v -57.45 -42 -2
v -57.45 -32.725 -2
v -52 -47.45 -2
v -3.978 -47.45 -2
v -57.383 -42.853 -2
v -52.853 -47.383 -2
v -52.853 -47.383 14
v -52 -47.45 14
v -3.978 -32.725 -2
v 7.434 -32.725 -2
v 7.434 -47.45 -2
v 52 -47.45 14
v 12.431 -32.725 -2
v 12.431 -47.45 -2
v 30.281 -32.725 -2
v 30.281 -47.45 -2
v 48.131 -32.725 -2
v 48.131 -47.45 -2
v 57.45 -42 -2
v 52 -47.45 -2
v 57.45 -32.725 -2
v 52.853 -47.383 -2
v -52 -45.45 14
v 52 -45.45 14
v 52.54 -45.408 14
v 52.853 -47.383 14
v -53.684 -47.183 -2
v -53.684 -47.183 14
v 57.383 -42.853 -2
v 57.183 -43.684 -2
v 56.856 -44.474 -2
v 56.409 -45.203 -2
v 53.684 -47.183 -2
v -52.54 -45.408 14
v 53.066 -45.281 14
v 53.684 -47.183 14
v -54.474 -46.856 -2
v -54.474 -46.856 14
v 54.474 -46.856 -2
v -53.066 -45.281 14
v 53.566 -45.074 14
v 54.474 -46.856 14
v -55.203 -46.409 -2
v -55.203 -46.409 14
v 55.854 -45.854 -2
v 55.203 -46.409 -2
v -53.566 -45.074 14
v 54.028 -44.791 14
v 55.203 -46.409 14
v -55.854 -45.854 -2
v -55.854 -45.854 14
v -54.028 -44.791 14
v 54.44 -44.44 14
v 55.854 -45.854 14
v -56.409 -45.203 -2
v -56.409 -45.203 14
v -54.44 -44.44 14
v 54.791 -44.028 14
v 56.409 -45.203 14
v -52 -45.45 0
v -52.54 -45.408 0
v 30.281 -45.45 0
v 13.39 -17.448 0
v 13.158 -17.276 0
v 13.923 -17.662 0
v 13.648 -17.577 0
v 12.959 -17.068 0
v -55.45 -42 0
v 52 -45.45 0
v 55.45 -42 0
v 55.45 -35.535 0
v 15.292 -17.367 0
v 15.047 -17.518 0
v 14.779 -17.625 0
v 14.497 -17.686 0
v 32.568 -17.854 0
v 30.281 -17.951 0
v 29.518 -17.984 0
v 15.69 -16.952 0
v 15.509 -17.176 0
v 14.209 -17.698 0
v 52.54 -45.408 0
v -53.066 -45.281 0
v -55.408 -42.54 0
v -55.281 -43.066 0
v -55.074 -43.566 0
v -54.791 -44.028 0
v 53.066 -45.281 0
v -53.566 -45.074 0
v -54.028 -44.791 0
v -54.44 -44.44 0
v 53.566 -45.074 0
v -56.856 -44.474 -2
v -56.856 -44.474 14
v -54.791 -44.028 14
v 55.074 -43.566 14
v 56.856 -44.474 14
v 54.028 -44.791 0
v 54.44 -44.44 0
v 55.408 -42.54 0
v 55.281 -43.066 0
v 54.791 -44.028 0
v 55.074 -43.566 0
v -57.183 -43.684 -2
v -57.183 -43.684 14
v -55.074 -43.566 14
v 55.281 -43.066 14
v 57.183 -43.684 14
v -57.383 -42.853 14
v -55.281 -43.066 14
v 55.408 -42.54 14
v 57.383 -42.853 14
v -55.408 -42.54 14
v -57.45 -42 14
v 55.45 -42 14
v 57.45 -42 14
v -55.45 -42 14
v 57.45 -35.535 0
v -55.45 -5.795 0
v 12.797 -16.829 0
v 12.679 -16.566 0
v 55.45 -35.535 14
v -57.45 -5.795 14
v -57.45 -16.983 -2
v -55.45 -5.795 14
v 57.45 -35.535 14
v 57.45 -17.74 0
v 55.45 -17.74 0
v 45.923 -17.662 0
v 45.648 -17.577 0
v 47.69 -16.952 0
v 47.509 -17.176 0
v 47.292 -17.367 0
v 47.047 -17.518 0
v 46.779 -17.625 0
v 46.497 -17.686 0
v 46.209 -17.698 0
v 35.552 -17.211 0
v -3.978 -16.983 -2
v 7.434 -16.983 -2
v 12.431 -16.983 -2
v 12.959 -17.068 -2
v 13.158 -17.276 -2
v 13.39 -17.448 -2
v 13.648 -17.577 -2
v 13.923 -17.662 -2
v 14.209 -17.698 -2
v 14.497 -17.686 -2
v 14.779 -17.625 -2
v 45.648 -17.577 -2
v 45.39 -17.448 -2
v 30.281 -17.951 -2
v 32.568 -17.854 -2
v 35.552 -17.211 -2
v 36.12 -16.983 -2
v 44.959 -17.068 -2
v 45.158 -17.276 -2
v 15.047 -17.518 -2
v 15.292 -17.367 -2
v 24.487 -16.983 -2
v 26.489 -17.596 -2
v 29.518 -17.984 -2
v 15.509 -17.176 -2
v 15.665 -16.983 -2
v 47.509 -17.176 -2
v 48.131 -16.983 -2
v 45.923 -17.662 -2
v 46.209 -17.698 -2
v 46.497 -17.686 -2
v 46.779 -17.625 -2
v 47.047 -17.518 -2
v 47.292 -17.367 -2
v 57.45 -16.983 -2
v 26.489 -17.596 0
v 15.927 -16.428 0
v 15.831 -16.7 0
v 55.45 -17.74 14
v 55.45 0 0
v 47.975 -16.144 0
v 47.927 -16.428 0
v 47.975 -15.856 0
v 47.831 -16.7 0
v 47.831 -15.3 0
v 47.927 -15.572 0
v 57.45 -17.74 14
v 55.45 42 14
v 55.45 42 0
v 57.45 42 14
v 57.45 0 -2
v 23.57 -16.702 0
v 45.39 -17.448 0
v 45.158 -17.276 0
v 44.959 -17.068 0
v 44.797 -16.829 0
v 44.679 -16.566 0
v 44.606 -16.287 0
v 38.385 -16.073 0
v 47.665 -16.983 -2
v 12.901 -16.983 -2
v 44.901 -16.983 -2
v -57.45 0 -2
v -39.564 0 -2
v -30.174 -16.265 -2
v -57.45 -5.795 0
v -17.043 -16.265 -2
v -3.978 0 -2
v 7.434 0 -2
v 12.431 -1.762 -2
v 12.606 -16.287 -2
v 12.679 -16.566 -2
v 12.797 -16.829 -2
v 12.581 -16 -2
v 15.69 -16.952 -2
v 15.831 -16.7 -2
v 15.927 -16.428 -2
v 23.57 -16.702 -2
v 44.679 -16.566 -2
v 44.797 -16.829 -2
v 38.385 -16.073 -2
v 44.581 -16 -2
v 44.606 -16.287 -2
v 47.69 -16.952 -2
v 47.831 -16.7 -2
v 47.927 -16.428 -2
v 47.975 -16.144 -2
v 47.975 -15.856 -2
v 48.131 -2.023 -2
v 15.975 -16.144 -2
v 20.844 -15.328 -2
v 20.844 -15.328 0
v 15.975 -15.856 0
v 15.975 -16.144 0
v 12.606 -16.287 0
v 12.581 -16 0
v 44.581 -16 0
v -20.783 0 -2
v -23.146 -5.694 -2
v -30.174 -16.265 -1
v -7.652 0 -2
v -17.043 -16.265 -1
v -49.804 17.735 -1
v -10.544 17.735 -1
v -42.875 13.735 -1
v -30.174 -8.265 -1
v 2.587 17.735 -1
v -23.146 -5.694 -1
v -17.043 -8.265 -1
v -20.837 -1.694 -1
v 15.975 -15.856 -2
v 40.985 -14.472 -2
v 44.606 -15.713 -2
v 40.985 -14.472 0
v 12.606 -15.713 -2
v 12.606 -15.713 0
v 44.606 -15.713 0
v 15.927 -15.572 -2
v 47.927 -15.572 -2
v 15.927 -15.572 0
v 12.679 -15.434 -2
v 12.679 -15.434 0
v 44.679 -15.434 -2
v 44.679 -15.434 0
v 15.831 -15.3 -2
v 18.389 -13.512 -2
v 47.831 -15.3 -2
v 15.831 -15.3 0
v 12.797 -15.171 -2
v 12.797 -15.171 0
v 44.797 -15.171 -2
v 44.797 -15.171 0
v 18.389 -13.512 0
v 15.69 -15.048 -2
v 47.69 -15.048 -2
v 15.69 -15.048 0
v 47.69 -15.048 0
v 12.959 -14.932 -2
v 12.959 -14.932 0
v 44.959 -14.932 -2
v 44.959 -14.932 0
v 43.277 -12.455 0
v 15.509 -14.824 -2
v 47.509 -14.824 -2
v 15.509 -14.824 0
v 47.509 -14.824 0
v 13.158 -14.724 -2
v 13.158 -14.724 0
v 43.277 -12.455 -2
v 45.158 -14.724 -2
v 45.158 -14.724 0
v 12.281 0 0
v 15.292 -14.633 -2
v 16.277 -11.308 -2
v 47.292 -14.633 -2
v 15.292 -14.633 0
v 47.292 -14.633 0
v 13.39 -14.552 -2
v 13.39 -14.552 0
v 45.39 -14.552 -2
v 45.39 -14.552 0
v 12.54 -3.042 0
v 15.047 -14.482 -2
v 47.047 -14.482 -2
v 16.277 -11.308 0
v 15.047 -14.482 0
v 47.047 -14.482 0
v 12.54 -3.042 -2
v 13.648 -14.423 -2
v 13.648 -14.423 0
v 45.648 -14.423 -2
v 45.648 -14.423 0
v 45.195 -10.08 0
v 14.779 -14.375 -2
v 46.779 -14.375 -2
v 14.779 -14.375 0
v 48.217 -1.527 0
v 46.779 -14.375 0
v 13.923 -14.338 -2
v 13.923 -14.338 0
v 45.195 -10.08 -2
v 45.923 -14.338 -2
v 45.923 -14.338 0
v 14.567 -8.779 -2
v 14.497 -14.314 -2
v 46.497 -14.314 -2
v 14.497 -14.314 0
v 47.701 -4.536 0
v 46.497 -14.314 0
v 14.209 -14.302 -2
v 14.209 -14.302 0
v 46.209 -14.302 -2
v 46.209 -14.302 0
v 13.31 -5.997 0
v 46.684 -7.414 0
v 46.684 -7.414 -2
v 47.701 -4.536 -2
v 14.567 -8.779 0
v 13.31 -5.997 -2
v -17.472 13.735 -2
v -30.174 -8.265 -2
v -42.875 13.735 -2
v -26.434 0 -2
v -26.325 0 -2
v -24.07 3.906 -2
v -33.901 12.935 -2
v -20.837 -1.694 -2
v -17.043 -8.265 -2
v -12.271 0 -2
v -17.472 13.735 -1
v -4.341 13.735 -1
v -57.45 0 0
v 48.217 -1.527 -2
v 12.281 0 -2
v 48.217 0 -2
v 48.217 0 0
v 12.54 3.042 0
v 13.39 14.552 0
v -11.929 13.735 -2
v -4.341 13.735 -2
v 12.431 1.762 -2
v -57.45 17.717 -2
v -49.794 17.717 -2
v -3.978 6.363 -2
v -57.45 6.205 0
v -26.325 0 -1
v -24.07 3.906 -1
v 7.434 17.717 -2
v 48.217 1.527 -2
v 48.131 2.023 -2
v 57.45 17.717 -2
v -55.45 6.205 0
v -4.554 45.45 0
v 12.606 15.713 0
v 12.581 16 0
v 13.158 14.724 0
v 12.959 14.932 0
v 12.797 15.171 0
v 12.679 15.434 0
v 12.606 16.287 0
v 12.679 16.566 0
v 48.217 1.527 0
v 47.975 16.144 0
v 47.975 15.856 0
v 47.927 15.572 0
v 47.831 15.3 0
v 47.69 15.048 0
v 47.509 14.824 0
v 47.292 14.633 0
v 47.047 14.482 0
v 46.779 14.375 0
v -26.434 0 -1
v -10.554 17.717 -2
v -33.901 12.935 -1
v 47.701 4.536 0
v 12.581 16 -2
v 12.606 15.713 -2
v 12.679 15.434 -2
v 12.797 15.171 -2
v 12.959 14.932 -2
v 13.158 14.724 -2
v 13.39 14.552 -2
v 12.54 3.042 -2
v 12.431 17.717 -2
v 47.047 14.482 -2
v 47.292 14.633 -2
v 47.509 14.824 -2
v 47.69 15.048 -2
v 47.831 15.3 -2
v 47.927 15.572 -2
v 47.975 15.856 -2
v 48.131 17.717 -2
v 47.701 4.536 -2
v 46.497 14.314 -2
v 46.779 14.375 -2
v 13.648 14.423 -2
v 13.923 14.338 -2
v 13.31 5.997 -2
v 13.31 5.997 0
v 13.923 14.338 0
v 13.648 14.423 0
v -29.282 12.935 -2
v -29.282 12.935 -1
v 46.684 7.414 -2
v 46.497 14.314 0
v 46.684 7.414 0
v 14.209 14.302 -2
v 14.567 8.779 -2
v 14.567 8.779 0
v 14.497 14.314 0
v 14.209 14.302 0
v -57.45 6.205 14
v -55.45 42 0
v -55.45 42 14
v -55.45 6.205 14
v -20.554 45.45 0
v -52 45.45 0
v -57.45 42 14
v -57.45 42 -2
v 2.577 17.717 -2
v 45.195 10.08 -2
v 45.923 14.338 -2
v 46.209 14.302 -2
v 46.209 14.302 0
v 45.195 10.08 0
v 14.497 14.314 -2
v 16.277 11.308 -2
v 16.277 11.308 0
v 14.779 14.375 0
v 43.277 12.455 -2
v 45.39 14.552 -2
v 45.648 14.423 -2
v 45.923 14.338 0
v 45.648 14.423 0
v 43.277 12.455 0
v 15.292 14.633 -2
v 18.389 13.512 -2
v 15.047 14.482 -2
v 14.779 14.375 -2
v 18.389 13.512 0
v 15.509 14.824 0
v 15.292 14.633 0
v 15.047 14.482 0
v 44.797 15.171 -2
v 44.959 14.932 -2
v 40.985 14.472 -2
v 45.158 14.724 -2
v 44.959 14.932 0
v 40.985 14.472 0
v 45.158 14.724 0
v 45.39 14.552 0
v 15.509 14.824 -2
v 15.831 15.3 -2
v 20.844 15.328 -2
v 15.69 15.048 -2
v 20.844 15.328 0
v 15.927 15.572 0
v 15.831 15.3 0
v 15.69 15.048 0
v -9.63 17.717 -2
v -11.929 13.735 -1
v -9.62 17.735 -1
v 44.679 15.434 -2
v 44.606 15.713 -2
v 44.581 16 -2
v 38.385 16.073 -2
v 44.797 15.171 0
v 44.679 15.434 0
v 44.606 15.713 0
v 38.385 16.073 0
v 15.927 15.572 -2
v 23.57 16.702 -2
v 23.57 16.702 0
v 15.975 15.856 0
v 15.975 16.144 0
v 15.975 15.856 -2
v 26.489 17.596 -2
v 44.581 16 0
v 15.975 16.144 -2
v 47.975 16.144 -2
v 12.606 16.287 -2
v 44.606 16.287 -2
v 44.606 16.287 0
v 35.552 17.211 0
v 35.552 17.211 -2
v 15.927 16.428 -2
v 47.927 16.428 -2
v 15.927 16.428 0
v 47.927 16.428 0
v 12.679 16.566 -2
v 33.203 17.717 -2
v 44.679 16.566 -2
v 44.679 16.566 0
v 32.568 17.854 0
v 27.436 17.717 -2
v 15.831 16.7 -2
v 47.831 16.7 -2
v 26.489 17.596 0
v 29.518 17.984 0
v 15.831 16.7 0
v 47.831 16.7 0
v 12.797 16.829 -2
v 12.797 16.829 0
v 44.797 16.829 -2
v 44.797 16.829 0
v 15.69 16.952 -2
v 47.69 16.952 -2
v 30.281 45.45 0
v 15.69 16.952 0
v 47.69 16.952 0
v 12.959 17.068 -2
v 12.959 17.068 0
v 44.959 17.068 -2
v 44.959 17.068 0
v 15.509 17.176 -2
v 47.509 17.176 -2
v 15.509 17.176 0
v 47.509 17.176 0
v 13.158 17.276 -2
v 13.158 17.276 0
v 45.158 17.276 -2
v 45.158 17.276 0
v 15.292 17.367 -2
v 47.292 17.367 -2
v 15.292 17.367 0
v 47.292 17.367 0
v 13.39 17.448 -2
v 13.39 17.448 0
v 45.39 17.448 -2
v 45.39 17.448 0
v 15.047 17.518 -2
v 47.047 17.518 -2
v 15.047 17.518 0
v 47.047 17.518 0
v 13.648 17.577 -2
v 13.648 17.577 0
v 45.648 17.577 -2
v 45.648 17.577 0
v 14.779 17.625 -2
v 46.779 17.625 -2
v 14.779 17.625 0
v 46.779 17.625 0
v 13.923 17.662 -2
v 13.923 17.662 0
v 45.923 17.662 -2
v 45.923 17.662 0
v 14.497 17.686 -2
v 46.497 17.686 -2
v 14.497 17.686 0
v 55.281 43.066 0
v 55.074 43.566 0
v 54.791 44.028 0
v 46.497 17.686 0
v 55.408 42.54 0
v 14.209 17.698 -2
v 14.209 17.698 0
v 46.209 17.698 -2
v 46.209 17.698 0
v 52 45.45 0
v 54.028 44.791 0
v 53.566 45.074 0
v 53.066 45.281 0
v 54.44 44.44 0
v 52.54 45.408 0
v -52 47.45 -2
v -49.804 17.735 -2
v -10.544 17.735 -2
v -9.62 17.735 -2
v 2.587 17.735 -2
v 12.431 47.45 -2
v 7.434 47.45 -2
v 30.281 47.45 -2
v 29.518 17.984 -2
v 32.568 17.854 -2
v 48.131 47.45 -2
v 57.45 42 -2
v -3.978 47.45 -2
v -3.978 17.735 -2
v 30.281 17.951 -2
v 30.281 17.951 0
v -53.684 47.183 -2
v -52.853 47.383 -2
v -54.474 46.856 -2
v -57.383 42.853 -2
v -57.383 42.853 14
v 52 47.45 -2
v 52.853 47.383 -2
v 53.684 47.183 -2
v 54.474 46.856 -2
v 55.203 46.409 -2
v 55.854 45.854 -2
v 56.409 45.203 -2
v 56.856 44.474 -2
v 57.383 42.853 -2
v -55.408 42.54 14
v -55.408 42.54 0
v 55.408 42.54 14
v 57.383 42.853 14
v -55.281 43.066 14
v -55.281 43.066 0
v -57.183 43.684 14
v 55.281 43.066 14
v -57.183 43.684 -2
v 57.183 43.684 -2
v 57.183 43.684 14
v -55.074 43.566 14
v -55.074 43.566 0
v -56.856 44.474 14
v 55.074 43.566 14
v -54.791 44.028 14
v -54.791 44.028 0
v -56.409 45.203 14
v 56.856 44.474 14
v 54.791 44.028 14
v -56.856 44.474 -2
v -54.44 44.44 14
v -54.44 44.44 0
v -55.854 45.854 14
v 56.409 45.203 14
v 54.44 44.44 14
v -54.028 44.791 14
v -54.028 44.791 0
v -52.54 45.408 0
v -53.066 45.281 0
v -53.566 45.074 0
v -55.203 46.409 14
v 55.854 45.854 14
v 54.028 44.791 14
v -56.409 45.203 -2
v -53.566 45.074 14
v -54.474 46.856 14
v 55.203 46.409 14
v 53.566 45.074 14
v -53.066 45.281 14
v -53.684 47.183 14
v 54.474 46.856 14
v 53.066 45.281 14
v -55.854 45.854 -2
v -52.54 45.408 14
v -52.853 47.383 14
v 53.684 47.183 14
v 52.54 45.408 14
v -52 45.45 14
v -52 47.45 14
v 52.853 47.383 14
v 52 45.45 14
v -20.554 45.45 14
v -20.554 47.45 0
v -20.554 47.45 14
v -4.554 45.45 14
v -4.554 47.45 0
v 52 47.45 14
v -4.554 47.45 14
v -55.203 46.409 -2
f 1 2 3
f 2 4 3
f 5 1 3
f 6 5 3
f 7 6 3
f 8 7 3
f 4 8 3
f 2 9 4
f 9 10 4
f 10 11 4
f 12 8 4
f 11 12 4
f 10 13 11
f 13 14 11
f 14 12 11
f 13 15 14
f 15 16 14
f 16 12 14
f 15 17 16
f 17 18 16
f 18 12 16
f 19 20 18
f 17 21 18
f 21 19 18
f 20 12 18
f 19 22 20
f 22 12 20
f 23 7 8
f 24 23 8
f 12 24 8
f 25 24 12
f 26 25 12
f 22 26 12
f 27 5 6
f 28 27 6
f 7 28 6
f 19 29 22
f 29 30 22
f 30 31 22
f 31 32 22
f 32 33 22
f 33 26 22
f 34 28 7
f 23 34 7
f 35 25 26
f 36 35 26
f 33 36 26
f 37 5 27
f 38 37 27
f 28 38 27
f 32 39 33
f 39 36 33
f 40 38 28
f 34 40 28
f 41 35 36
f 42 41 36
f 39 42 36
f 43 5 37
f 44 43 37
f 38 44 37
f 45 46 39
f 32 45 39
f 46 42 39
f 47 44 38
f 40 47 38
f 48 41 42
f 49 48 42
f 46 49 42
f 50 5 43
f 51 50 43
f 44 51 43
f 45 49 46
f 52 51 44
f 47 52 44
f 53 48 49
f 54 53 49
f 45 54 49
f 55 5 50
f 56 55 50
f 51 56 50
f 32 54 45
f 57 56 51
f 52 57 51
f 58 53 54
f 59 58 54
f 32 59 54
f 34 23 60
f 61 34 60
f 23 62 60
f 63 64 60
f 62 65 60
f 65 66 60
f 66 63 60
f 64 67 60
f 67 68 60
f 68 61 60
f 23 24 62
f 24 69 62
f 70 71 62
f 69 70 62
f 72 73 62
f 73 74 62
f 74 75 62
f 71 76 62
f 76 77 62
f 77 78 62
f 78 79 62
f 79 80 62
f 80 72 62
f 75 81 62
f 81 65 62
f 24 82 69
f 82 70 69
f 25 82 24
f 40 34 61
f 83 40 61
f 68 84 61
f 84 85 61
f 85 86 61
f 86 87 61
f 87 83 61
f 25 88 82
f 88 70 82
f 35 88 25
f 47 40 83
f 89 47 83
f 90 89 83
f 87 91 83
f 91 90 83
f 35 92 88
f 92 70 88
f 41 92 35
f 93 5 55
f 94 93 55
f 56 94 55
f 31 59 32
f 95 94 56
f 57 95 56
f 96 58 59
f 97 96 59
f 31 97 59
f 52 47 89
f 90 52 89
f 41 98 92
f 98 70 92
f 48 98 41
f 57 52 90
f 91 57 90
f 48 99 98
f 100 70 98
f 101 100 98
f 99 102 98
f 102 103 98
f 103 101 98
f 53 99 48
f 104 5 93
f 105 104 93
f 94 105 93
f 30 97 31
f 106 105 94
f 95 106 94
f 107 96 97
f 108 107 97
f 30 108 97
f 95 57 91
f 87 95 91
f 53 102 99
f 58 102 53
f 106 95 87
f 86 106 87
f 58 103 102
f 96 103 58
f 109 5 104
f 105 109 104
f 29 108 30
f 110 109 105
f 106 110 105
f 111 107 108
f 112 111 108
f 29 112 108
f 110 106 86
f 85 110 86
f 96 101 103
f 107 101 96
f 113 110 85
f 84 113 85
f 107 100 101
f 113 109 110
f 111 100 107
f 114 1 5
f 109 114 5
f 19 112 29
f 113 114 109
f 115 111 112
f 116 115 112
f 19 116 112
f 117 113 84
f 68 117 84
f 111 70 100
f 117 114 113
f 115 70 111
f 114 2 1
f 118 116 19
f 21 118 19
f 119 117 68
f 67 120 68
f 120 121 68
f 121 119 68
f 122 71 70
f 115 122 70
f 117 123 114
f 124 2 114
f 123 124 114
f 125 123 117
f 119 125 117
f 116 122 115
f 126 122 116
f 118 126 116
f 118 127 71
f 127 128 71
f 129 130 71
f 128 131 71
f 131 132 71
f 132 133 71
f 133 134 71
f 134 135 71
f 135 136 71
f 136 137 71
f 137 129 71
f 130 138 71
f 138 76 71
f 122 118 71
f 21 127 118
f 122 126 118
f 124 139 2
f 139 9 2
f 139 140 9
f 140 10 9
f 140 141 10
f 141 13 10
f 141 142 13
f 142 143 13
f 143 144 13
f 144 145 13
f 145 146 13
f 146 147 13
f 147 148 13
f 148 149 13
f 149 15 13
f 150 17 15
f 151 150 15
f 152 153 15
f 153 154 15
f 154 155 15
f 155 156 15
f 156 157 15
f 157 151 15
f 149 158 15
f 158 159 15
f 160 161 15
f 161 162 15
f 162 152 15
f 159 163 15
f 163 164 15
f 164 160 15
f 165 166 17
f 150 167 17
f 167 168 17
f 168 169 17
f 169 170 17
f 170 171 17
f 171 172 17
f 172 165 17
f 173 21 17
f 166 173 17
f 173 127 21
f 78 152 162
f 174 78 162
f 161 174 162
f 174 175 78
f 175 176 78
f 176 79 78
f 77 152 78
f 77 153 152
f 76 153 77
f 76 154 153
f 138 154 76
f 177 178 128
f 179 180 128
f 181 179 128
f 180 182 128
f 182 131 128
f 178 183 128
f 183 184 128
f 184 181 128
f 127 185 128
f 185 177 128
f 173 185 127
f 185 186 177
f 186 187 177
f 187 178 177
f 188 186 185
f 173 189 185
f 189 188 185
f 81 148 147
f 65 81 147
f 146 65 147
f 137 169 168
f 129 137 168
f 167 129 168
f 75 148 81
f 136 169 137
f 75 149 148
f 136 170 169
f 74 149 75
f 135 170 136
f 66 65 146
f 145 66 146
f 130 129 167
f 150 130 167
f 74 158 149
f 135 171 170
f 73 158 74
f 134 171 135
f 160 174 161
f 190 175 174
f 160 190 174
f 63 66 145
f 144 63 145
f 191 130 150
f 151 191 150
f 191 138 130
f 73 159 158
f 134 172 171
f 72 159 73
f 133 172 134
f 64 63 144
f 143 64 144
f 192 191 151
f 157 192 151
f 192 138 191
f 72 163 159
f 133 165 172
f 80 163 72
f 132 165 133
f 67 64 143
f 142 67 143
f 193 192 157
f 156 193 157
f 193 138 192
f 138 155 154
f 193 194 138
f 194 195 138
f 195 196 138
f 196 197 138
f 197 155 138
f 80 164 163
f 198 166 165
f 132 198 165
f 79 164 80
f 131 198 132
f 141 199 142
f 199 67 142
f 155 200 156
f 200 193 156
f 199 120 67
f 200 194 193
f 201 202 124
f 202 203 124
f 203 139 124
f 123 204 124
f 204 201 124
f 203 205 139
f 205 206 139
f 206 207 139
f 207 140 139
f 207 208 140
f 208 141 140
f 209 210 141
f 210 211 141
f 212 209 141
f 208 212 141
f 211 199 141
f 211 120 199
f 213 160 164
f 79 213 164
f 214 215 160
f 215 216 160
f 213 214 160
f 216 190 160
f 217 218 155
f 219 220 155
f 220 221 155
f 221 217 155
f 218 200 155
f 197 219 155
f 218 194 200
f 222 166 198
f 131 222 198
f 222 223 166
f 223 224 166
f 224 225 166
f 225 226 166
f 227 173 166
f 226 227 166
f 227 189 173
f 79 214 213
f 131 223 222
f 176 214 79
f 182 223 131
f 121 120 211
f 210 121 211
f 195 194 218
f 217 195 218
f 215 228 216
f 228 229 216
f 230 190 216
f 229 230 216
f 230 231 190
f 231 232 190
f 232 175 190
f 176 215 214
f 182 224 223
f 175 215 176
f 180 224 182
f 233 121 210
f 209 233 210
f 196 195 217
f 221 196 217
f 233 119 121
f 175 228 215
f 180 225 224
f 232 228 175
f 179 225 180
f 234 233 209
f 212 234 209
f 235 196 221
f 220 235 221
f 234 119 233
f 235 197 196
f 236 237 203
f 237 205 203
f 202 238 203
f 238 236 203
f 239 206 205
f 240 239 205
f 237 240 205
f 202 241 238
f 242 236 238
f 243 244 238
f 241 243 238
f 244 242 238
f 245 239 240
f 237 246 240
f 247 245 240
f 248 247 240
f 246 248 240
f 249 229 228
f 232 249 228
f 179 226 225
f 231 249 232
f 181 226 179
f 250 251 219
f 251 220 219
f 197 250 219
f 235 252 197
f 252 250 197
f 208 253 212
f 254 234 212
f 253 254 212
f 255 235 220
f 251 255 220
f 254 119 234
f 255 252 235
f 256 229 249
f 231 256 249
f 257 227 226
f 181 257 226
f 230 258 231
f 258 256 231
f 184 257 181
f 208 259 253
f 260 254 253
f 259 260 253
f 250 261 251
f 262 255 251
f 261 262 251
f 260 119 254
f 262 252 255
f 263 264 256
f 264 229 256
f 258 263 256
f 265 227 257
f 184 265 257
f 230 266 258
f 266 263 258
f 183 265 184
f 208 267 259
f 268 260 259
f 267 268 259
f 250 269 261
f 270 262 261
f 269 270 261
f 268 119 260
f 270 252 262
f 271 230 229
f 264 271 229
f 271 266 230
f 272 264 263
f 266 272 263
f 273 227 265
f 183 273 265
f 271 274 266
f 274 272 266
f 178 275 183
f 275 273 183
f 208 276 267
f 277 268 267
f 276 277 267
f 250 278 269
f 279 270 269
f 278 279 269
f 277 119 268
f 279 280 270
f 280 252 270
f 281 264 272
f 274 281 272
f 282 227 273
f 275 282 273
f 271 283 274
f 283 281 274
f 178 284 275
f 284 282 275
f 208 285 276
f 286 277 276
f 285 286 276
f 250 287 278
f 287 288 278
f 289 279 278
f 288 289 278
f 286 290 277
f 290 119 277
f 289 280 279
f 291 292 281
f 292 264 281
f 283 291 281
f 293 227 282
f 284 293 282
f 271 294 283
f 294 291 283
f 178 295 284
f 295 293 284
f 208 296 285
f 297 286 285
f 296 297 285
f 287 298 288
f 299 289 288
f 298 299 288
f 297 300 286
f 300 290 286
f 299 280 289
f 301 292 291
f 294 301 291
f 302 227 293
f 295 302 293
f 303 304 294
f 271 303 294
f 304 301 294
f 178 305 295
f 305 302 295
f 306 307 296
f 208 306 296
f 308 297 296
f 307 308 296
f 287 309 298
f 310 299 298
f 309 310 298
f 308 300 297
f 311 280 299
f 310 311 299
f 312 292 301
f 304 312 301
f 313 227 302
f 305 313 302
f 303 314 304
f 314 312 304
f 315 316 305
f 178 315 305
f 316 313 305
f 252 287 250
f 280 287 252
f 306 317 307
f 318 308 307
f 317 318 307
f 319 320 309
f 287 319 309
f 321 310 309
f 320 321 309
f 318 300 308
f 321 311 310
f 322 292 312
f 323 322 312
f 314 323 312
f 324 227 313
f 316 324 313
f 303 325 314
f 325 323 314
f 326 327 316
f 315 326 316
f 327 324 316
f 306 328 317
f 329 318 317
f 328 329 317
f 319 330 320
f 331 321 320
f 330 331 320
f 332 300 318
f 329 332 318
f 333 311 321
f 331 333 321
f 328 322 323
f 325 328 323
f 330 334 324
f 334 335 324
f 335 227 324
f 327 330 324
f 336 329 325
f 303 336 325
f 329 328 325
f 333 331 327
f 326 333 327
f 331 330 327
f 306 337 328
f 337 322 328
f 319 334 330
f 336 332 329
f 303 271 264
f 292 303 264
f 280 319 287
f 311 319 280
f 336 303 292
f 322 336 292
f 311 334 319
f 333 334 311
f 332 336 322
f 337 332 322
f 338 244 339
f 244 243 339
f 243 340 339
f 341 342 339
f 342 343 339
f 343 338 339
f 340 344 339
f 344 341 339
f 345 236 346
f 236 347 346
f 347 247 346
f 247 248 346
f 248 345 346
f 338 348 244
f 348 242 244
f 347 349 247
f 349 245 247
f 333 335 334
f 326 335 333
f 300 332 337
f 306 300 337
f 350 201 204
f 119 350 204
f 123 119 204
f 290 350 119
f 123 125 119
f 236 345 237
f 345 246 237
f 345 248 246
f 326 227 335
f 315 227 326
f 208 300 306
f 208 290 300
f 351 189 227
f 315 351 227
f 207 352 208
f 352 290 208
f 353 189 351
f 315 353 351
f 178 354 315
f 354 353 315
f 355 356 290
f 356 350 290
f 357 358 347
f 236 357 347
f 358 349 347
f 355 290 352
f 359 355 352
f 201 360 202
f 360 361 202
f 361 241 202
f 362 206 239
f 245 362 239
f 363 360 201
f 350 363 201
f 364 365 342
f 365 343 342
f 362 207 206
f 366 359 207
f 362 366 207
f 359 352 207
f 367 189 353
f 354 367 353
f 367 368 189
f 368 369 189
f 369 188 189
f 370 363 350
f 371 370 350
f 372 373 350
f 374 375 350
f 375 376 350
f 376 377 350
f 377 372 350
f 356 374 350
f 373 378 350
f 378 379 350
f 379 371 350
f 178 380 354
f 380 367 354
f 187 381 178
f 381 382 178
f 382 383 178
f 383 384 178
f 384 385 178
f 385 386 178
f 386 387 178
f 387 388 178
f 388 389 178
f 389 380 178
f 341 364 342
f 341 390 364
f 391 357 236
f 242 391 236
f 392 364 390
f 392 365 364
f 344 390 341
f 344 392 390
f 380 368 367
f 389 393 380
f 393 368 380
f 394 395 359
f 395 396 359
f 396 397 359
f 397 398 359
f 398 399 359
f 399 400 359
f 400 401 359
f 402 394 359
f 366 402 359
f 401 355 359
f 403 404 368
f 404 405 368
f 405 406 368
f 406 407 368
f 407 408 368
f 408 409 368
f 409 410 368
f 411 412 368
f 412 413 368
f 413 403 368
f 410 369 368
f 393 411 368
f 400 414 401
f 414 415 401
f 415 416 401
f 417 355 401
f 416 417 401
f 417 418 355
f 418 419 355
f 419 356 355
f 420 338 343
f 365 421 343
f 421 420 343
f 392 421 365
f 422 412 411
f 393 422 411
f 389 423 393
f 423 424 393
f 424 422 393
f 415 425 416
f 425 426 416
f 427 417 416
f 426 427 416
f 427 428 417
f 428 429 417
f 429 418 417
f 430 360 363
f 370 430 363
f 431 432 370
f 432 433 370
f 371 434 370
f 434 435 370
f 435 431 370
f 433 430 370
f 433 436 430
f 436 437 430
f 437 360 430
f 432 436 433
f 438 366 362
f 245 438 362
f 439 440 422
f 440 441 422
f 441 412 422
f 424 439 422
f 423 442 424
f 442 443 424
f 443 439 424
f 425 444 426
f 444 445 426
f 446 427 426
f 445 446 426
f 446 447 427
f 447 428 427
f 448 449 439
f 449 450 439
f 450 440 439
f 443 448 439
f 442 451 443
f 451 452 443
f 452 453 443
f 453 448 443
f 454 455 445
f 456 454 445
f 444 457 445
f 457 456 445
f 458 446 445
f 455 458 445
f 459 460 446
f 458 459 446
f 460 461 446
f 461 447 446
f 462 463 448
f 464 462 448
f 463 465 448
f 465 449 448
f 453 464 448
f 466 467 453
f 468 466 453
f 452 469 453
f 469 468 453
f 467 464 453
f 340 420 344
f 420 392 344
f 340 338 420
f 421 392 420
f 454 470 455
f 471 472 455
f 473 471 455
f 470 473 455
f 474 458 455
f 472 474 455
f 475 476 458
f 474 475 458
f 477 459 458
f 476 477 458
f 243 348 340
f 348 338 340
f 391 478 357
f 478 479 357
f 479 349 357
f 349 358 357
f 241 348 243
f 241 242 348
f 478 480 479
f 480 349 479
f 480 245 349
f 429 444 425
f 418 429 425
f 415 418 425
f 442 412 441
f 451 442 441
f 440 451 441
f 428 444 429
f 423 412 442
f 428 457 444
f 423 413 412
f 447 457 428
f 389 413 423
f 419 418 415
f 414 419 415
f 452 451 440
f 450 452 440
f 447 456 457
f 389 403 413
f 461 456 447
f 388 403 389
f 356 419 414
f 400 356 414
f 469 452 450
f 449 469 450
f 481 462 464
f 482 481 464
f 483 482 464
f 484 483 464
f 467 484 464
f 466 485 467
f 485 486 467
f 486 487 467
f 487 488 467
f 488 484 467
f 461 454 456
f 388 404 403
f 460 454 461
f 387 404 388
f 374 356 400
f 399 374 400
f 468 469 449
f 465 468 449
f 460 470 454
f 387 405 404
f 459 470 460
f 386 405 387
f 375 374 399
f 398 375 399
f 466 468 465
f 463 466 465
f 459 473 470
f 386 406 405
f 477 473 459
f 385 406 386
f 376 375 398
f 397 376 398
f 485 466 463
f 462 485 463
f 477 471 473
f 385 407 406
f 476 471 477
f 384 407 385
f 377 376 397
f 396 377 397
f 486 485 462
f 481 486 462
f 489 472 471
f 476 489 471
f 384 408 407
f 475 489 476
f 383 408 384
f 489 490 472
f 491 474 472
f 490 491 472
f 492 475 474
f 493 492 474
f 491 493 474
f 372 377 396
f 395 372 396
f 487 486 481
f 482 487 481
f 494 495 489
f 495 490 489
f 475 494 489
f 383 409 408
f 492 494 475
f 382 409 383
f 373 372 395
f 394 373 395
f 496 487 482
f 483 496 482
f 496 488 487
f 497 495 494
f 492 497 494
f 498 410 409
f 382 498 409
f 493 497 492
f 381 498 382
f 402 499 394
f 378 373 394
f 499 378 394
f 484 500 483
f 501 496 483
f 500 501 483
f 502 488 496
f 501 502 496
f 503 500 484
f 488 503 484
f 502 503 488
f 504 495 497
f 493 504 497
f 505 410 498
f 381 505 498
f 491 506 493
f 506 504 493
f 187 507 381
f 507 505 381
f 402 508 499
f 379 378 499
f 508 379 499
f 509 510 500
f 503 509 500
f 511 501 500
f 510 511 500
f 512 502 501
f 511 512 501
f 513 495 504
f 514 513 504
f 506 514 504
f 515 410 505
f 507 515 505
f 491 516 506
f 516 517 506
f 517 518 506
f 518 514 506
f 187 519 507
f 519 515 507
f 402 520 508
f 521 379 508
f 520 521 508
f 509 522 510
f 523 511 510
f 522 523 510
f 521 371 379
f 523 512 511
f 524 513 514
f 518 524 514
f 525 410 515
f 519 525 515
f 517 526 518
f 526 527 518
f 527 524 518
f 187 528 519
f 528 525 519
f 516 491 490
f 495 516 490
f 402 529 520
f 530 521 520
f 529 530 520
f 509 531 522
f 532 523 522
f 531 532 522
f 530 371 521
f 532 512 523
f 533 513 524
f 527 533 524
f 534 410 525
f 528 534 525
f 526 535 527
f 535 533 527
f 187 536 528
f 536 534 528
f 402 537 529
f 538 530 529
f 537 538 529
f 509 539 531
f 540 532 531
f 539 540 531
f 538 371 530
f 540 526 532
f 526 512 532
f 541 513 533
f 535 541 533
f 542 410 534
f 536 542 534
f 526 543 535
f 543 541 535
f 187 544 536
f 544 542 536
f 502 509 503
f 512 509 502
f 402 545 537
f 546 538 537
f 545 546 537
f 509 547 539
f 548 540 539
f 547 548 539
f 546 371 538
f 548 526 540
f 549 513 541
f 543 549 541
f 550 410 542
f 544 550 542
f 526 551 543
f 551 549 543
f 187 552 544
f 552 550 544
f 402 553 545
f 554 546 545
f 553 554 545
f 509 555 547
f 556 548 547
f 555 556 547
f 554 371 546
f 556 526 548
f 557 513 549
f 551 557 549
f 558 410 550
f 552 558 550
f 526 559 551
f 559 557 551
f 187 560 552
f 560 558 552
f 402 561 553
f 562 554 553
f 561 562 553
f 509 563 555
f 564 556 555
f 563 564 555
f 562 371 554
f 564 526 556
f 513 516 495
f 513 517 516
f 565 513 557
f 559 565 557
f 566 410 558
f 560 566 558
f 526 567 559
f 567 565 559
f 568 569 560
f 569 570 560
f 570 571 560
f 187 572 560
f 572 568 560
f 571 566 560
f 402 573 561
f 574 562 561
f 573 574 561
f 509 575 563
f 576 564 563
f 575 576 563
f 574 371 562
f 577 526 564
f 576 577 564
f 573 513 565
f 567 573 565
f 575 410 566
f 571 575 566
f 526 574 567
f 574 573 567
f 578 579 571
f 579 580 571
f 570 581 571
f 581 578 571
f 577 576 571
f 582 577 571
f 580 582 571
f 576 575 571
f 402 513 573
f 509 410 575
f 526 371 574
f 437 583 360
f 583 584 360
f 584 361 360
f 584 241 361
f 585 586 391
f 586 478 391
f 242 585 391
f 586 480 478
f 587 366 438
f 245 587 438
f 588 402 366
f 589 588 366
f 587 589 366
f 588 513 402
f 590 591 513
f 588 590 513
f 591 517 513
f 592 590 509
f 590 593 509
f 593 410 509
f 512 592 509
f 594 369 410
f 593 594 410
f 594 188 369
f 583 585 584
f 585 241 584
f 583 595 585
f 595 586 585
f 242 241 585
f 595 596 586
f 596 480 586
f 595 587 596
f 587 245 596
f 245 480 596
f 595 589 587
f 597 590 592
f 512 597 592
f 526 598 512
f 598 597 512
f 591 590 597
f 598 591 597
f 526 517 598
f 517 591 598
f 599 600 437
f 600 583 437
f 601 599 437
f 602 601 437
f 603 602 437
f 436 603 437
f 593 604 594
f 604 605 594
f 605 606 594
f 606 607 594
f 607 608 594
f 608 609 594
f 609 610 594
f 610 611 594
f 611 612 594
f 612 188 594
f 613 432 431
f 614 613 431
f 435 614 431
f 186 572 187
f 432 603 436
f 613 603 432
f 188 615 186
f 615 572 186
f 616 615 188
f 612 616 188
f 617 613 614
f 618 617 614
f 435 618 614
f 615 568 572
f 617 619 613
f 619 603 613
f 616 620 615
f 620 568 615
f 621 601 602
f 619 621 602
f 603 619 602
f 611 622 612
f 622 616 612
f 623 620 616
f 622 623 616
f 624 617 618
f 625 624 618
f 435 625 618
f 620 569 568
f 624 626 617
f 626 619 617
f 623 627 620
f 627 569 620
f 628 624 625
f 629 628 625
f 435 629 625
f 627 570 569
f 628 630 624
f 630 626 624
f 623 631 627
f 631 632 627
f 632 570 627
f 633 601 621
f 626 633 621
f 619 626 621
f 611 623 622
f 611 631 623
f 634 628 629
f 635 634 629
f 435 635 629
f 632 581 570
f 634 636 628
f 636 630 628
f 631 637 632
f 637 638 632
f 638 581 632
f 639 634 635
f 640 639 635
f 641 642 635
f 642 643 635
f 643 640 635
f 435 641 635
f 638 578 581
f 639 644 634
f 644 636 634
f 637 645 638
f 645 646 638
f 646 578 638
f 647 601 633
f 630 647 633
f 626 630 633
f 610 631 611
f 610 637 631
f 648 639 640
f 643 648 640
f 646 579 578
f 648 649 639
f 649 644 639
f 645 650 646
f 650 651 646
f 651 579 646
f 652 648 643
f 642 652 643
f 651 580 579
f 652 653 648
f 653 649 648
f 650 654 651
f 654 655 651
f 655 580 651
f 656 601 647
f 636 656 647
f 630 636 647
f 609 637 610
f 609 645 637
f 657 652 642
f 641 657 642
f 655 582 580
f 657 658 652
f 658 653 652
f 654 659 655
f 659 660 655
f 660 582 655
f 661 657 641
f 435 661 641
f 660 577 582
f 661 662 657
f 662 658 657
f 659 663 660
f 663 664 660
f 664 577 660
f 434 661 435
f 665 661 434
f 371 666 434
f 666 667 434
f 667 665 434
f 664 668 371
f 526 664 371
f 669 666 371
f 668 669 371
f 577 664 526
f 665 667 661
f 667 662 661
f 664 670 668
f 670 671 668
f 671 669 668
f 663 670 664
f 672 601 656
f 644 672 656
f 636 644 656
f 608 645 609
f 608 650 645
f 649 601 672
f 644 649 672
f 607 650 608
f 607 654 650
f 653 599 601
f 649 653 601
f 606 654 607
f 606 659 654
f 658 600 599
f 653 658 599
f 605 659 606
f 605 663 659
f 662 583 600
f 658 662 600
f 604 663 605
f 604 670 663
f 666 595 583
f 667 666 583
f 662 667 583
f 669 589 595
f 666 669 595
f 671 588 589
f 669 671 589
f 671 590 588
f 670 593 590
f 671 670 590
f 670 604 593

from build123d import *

# Parameters (mm, degrees)
BOSS_EXTRUDE1_DEPTH = 14
BOSS_EXTRUDE2_START = 2
BOSS_EXTRUDE2_DEPTH = 2
SKETCH4_W           = 2
SKETCH4_H           = 12
CUT_EXTRUDE1_DEPTH  = 94
SKETCH5_R           = 1.7
SKETCH5_R_2         = 18
CUT_EXTRUDE2_DEPTH  = 10
CUT_EXTRUDE3_DEPTH  = 1


with BuildPart() as part:
    # Sketch1 → Boss-Extrude1 (new body)
    with BuildSketch(Plane.XY):
        with BuildLine():
            Line((52, 47.45), (-52, 47.45))
            ThreePointArc((-52, 47.45), (-55.853731957, 45.853731957), (-57.45, 42))
            Line((-57.45, 42), (-57.45, -42))
            ThreePointArc((-57.45, -42), (-55.853731957, -45.853731957), (-52, -47.45))
            Line((-52, -47.45), (52, -47.45))
            ThreePointArc((52, -47.45), (55.853731957, -45.853731957), (57.45, -42))
            Line((57.45, -42), (57.45, 42))
            ThreePointArc((57.45, 42), (55.853731957, 45.853731957), (52, 47.45))
        make_face()
        with BuildLine():
            Line((52, 45.45), (-52, 45.45))
            ThreePointArc((-52, 45.45), (-54.439518395, 44.439518395), (-55.45, 42))
            Line((-55.45, 42), (-55.45, -42))
            ThreePointArc((-55.45, -42), (-54.439518395, -44.439518395), (-52, -45.45))
            Line((-52, -45.45), (52, -45.45))
            ThreePointArc((52, -45.45), (54.439518395, -44.439518395), (55.45, -42))
            Line((55.45, -42), (55.45, 42))
            ThreePointArc((55.45, 42), (54.439518395, 44.439518395), (52, 45.45))
        make_face(mode=Mode.SUBTRACT)
    extrude(amount=BOSS_EXTRUDE1_DEPTH)

    # Sketch2 → Boss-Extrude2 (add)
    with BuildSketch(Plane(origin=(0, 0, 0), x_dir=(-1, 0, 0), z_dir=(0, 0, -1)).offset(BOSS_EXTRUDE2_START)):
        with BuildLine():
            Line((-57.45, 42), (-57.45, -42))
            ThreePointArc((-57.45, -42), (-55.853731957, -45.853731957), (-52, -47.45))
            Line((-52, -47.45), (52, -47.45))
            ThreePointArc((52, -47.45), (55.853731957, -45.853731957), (57.45, -42))
            Line((57.45, -42), (57.45, 42))
            ThreePointArc((57.45, 42), (55.853731957, 45.853731957), (52, 47.45))
            Line((52, 47.45), (-52, 47.45))
            ThreePointArc((-52, 47.45), (-55.853731957, 45.853731957), (-57.45, 42))
        make_face()
    extrude(amount=-BOSS_EXTRUDE2_DEPTH)

    # Sketch4 → Cut-Extrude1 (cut)
    with BuildSketch(Plane.XY):
        Polygon((-4.554445608, 45.9), (-4.554445608, 47.45), (-20.554445608, 47.45), (-20.554445608, 45.45), (-4.554445608, 45.45), align=None)
        with Locations((-56.45, 0.205355748)):
            Rectangle(SKETCH4_W, SKETCH4_H)
        Polygon((55.445554392, -35.534861573), (57.45, -35.534861573), (57.45, -17.740217321), (55.45, -17.740217321), align=None)
    extrude(amount=CUT_EXTRUDE1_DEPTH, mode=Mode.SUBTRACT)

    # Sketch5 → Cut-Extrude2 (cut)
    with BuildSketch(Plane(origin=(0, 0, -2), x_dir=(-1, 0, 0), z_dir=(0, 0, -1))):
        with Locations((-14.281468852, 16)):
            Circle(SKETCH5_R)
        with Locations((-46.281468852, 16)):
            Circle(SKETCH5_R)
        with Locations((-46.281468852, -16)):
            Circle(SKETCH5_R)
        with Locations((-14.281468852, -16)):
            Circle(SKETCH5_R)
        with Locations((-30.281468852, 0)):
            Circle(SKETCH5_R_2)
    extrude(amount=-CUT_EXTRUDE2_DEPTH, mode=Mode.SUBTRACT)

    # Sketch6 → Cut-Extrude3 (cut)
    with BuildSketch(Plane(origin=(0, 0, -2), x_dir=(-1, 0, 0), z_dir=(0, 0, -1))):
        Polygon((25.401519513, 0), (20.78271736, 0), (30.173596476, -16.265479758), (39.564475593, 0), (34.945673439, 0), (30.173596476, -8.265479758), align=None)
        Polygon((24.070013842, 3.906235473), (26.325279944, 0), (26.433549893, 0), (33.901298637, 12.934520242), (29.282496484, 12.934520242), align=None)
        Polygon((-2.587238376, 17.734520242), (7.65179166, 0), (12.270593814, 0), (4.340964855, 13.734520242), (11.92932797, 13.734520242), (9.619926893, 17.734520242), align=None)
        Polygon((12.270593814, 0), (7.65179166, 0), (17.042670777, -16.265479758), (23.146253411, -5.693764527), (20.836852334, -1.693764527), (17.042670777, -8.265479758), align=None)
        Polygon((10.543687324, 17.734520242), (20.78271736, 0), (25.401519513, 0), (17.471890554, 13.734520242), (29.744376699, 13.734520242), (42.875302398, 13.734520242), (34.945673439, 0), (39.564475593, 0), (49.803505629, 17.734520242), (36.672579929, 17.734520242), align=None)
    extrude(amount=-CUT_EXTRUDE3_DEPTH, mode=Mode.SUBTRACT)


solid = part.part
